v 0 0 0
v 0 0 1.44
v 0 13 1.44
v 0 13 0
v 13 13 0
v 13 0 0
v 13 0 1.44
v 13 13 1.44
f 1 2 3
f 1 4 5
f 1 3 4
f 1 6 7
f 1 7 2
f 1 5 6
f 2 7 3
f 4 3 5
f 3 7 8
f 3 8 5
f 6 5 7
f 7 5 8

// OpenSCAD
/* Warning, this is a very basic generator with a lot of approximation 
input data : [LFBGA, AKB, 13x13x1.44mm, 225, , A, C04-21122A]
generated by com.zoubworld.electronics.cad.model3d.Basic
Date : Sun Feb 15 10:50:49 CET 2026
*/

//body
color("black")
translate([0,0,0])
cube([13.0,13.0,1.44], center=false);
